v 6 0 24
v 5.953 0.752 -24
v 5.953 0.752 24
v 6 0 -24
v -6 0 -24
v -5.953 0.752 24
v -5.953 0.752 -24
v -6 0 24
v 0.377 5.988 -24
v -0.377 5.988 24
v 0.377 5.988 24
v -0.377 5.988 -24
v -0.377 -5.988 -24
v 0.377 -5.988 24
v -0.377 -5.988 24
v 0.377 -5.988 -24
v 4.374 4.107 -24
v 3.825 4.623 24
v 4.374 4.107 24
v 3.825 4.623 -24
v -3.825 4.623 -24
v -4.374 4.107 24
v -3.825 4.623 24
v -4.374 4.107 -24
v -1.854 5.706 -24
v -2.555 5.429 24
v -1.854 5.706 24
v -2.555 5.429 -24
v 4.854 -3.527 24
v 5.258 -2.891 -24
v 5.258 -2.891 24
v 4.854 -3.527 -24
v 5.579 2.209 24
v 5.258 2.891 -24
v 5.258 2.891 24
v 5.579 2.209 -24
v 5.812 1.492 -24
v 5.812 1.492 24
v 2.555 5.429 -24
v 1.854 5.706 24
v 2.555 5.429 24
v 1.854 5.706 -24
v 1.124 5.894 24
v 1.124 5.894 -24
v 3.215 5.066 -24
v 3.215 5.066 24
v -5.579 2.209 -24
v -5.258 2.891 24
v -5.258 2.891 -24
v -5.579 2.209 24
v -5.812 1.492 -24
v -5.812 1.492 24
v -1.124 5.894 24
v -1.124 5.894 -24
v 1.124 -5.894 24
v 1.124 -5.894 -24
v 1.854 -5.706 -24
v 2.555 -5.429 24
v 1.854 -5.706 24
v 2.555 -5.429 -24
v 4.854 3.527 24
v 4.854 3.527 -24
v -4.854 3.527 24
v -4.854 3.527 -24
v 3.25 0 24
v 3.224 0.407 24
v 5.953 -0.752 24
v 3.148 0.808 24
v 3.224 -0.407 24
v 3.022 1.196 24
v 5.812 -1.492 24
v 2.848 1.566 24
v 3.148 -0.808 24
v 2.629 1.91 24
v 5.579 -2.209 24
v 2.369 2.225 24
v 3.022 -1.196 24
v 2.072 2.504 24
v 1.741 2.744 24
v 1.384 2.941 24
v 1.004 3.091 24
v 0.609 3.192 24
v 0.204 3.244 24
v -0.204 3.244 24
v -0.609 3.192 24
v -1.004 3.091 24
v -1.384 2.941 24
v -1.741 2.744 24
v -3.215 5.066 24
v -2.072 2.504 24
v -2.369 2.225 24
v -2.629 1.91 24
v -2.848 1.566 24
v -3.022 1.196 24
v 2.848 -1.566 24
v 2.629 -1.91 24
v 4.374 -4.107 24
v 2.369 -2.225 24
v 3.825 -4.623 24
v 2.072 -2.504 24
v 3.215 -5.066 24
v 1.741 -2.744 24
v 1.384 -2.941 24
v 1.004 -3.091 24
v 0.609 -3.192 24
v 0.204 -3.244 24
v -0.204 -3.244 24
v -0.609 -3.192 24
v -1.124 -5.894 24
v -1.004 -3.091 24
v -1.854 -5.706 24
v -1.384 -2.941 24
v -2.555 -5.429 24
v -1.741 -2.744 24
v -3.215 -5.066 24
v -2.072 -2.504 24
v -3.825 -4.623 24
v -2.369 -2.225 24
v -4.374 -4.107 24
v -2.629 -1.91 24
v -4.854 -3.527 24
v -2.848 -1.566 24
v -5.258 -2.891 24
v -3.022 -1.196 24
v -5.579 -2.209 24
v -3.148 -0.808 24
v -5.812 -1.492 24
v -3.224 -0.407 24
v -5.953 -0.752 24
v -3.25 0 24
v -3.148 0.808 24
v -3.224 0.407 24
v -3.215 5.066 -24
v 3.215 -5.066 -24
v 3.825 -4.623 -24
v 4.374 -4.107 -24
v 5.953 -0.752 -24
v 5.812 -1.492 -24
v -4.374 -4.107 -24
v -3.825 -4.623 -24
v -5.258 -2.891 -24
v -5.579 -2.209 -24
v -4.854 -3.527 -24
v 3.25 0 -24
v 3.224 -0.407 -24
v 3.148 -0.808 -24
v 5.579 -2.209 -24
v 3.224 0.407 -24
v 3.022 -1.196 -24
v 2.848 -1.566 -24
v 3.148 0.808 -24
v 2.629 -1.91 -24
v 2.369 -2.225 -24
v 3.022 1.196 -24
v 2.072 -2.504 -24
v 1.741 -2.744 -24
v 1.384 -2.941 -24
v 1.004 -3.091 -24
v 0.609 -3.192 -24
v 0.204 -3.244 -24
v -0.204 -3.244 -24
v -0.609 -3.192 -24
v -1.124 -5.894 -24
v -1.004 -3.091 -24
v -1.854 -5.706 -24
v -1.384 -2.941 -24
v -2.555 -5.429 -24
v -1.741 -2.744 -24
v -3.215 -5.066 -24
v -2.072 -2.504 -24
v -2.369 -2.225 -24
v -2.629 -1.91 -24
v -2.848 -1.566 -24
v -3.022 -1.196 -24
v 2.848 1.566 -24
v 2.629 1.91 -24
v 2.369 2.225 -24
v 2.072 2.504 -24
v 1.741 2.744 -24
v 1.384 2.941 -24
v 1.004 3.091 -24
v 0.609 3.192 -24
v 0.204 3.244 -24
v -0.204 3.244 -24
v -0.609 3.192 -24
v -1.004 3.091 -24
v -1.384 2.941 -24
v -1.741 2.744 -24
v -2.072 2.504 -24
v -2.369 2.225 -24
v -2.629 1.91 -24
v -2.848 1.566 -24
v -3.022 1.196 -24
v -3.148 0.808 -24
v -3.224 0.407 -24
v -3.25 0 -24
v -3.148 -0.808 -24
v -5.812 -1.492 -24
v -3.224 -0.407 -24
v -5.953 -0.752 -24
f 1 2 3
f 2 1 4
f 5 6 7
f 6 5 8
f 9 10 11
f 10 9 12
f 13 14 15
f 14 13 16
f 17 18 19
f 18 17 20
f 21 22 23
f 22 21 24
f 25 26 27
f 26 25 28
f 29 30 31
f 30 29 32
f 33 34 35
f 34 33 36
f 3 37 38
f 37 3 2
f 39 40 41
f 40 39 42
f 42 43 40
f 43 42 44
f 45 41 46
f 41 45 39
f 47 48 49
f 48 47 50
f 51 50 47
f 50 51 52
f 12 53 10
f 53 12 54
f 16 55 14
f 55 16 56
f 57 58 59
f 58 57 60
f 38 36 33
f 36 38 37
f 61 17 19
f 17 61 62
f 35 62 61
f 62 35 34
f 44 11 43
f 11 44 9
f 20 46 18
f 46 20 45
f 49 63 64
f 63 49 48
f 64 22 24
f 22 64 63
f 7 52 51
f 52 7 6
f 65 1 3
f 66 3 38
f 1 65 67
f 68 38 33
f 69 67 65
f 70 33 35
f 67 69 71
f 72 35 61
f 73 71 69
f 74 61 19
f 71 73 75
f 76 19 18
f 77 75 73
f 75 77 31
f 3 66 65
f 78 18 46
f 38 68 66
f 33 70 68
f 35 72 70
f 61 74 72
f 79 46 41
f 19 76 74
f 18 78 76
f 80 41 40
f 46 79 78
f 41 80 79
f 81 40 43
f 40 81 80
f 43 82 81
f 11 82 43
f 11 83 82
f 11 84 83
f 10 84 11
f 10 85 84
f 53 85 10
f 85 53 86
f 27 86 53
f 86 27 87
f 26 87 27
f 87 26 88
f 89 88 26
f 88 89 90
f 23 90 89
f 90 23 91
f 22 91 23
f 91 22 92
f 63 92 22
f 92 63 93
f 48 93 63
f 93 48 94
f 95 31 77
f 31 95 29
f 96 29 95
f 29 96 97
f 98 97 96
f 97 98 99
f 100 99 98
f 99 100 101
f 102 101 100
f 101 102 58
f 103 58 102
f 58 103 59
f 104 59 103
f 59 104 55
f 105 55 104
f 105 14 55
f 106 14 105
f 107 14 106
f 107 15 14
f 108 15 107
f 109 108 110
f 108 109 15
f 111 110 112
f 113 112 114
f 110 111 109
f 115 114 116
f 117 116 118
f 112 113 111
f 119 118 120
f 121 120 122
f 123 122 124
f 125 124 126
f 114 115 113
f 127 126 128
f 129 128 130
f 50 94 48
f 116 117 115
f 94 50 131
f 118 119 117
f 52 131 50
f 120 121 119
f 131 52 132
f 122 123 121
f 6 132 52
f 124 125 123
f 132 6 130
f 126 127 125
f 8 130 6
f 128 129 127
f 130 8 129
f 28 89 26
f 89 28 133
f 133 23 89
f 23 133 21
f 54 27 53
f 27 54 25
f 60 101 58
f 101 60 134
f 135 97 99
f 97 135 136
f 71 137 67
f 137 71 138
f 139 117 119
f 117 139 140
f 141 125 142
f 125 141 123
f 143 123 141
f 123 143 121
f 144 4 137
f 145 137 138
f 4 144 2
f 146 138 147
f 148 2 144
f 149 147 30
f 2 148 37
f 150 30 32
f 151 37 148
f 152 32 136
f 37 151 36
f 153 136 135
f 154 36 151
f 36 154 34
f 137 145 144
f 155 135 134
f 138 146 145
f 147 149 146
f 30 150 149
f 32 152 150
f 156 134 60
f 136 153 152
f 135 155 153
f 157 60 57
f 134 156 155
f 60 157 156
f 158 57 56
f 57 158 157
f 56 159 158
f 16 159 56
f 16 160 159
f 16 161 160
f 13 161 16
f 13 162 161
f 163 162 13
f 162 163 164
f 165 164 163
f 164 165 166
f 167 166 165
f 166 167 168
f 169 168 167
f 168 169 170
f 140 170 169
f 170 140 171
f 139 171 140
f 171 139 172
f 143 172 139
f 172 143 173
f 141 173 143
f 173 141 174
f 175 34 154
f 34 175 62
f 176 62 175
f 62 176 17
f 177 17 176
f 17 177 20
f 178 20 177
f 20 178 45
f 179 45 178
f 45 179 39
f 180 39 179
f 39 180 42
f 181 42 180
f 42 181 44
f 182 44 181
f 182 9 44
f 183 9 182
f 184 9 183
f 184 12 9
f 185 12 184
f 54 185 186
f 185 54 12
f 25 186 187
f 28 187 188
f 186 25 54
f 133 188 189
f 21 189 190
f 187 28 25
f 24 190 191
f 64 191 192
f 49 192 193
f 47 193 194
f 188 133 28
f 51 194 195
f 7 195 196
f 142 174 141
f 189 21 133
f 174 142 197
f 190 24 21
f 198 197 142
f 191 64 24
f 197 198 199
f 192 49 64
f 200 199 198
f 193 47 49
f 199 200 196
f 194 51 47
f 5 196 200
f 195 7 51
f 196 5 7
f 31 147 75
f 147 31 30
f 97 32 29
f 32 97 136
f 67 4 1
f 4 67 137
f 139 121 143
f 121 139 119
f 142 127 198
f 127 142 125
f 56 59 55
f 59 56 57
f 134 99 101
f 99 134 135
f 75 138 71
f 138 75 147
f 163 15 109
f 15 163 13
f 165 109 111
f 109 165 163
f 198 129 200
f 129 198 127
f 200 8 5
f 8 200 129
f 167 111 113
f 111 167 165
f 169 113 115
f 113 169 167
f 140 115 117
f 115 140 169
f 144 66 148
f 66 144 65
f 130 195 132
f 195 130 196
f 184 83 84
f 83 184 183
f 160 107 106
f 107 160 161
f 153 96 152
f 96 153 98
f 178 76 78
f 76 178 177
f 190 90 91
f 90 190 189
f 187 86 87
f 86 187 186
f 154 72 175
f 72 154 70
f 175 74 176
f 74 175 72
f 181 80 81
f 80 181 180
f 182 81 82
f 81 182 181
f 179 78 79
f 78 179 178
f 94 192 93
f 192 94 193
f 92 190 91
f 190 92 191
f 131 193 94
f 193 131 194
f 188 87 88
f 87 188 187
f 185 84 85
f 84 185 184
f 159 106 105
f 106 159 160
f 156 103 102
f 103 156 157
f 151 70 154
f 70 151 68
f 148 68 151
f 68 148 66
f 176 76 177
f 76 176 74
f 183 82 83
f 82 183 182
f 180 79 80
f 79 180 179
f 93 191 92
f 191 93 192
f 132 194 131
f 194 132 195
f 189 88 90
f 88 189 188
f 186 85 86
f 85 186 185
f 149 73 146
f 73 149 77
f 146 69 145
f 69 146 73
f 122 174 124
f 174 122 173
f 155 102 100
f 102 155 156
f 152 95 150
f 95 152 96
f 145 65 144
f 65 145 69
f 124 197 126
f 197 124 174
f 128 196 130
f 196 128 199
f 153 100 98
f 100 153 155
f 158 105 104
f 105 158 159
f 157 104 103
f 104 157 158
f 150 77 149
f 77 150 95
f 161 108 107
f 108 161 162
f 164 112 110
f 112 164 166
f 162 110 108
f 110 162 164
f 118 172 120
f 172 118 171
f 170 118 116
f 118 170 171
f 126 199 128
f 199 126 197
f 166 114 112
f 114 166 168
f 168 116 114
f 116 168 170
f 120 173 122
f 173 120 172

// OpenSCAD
$fn = 50;


difference() {
	union() {
		translate(v = [0, 0, -24.0000000000]) {
			cylinder(h = 48, r = 6.0000000000);
		}
	}
	union() {
		translate(v = [0, 0, -100.0000000000]) {
			cylinder(h = 200, r = 3.2500000000);
		}
	}
}
